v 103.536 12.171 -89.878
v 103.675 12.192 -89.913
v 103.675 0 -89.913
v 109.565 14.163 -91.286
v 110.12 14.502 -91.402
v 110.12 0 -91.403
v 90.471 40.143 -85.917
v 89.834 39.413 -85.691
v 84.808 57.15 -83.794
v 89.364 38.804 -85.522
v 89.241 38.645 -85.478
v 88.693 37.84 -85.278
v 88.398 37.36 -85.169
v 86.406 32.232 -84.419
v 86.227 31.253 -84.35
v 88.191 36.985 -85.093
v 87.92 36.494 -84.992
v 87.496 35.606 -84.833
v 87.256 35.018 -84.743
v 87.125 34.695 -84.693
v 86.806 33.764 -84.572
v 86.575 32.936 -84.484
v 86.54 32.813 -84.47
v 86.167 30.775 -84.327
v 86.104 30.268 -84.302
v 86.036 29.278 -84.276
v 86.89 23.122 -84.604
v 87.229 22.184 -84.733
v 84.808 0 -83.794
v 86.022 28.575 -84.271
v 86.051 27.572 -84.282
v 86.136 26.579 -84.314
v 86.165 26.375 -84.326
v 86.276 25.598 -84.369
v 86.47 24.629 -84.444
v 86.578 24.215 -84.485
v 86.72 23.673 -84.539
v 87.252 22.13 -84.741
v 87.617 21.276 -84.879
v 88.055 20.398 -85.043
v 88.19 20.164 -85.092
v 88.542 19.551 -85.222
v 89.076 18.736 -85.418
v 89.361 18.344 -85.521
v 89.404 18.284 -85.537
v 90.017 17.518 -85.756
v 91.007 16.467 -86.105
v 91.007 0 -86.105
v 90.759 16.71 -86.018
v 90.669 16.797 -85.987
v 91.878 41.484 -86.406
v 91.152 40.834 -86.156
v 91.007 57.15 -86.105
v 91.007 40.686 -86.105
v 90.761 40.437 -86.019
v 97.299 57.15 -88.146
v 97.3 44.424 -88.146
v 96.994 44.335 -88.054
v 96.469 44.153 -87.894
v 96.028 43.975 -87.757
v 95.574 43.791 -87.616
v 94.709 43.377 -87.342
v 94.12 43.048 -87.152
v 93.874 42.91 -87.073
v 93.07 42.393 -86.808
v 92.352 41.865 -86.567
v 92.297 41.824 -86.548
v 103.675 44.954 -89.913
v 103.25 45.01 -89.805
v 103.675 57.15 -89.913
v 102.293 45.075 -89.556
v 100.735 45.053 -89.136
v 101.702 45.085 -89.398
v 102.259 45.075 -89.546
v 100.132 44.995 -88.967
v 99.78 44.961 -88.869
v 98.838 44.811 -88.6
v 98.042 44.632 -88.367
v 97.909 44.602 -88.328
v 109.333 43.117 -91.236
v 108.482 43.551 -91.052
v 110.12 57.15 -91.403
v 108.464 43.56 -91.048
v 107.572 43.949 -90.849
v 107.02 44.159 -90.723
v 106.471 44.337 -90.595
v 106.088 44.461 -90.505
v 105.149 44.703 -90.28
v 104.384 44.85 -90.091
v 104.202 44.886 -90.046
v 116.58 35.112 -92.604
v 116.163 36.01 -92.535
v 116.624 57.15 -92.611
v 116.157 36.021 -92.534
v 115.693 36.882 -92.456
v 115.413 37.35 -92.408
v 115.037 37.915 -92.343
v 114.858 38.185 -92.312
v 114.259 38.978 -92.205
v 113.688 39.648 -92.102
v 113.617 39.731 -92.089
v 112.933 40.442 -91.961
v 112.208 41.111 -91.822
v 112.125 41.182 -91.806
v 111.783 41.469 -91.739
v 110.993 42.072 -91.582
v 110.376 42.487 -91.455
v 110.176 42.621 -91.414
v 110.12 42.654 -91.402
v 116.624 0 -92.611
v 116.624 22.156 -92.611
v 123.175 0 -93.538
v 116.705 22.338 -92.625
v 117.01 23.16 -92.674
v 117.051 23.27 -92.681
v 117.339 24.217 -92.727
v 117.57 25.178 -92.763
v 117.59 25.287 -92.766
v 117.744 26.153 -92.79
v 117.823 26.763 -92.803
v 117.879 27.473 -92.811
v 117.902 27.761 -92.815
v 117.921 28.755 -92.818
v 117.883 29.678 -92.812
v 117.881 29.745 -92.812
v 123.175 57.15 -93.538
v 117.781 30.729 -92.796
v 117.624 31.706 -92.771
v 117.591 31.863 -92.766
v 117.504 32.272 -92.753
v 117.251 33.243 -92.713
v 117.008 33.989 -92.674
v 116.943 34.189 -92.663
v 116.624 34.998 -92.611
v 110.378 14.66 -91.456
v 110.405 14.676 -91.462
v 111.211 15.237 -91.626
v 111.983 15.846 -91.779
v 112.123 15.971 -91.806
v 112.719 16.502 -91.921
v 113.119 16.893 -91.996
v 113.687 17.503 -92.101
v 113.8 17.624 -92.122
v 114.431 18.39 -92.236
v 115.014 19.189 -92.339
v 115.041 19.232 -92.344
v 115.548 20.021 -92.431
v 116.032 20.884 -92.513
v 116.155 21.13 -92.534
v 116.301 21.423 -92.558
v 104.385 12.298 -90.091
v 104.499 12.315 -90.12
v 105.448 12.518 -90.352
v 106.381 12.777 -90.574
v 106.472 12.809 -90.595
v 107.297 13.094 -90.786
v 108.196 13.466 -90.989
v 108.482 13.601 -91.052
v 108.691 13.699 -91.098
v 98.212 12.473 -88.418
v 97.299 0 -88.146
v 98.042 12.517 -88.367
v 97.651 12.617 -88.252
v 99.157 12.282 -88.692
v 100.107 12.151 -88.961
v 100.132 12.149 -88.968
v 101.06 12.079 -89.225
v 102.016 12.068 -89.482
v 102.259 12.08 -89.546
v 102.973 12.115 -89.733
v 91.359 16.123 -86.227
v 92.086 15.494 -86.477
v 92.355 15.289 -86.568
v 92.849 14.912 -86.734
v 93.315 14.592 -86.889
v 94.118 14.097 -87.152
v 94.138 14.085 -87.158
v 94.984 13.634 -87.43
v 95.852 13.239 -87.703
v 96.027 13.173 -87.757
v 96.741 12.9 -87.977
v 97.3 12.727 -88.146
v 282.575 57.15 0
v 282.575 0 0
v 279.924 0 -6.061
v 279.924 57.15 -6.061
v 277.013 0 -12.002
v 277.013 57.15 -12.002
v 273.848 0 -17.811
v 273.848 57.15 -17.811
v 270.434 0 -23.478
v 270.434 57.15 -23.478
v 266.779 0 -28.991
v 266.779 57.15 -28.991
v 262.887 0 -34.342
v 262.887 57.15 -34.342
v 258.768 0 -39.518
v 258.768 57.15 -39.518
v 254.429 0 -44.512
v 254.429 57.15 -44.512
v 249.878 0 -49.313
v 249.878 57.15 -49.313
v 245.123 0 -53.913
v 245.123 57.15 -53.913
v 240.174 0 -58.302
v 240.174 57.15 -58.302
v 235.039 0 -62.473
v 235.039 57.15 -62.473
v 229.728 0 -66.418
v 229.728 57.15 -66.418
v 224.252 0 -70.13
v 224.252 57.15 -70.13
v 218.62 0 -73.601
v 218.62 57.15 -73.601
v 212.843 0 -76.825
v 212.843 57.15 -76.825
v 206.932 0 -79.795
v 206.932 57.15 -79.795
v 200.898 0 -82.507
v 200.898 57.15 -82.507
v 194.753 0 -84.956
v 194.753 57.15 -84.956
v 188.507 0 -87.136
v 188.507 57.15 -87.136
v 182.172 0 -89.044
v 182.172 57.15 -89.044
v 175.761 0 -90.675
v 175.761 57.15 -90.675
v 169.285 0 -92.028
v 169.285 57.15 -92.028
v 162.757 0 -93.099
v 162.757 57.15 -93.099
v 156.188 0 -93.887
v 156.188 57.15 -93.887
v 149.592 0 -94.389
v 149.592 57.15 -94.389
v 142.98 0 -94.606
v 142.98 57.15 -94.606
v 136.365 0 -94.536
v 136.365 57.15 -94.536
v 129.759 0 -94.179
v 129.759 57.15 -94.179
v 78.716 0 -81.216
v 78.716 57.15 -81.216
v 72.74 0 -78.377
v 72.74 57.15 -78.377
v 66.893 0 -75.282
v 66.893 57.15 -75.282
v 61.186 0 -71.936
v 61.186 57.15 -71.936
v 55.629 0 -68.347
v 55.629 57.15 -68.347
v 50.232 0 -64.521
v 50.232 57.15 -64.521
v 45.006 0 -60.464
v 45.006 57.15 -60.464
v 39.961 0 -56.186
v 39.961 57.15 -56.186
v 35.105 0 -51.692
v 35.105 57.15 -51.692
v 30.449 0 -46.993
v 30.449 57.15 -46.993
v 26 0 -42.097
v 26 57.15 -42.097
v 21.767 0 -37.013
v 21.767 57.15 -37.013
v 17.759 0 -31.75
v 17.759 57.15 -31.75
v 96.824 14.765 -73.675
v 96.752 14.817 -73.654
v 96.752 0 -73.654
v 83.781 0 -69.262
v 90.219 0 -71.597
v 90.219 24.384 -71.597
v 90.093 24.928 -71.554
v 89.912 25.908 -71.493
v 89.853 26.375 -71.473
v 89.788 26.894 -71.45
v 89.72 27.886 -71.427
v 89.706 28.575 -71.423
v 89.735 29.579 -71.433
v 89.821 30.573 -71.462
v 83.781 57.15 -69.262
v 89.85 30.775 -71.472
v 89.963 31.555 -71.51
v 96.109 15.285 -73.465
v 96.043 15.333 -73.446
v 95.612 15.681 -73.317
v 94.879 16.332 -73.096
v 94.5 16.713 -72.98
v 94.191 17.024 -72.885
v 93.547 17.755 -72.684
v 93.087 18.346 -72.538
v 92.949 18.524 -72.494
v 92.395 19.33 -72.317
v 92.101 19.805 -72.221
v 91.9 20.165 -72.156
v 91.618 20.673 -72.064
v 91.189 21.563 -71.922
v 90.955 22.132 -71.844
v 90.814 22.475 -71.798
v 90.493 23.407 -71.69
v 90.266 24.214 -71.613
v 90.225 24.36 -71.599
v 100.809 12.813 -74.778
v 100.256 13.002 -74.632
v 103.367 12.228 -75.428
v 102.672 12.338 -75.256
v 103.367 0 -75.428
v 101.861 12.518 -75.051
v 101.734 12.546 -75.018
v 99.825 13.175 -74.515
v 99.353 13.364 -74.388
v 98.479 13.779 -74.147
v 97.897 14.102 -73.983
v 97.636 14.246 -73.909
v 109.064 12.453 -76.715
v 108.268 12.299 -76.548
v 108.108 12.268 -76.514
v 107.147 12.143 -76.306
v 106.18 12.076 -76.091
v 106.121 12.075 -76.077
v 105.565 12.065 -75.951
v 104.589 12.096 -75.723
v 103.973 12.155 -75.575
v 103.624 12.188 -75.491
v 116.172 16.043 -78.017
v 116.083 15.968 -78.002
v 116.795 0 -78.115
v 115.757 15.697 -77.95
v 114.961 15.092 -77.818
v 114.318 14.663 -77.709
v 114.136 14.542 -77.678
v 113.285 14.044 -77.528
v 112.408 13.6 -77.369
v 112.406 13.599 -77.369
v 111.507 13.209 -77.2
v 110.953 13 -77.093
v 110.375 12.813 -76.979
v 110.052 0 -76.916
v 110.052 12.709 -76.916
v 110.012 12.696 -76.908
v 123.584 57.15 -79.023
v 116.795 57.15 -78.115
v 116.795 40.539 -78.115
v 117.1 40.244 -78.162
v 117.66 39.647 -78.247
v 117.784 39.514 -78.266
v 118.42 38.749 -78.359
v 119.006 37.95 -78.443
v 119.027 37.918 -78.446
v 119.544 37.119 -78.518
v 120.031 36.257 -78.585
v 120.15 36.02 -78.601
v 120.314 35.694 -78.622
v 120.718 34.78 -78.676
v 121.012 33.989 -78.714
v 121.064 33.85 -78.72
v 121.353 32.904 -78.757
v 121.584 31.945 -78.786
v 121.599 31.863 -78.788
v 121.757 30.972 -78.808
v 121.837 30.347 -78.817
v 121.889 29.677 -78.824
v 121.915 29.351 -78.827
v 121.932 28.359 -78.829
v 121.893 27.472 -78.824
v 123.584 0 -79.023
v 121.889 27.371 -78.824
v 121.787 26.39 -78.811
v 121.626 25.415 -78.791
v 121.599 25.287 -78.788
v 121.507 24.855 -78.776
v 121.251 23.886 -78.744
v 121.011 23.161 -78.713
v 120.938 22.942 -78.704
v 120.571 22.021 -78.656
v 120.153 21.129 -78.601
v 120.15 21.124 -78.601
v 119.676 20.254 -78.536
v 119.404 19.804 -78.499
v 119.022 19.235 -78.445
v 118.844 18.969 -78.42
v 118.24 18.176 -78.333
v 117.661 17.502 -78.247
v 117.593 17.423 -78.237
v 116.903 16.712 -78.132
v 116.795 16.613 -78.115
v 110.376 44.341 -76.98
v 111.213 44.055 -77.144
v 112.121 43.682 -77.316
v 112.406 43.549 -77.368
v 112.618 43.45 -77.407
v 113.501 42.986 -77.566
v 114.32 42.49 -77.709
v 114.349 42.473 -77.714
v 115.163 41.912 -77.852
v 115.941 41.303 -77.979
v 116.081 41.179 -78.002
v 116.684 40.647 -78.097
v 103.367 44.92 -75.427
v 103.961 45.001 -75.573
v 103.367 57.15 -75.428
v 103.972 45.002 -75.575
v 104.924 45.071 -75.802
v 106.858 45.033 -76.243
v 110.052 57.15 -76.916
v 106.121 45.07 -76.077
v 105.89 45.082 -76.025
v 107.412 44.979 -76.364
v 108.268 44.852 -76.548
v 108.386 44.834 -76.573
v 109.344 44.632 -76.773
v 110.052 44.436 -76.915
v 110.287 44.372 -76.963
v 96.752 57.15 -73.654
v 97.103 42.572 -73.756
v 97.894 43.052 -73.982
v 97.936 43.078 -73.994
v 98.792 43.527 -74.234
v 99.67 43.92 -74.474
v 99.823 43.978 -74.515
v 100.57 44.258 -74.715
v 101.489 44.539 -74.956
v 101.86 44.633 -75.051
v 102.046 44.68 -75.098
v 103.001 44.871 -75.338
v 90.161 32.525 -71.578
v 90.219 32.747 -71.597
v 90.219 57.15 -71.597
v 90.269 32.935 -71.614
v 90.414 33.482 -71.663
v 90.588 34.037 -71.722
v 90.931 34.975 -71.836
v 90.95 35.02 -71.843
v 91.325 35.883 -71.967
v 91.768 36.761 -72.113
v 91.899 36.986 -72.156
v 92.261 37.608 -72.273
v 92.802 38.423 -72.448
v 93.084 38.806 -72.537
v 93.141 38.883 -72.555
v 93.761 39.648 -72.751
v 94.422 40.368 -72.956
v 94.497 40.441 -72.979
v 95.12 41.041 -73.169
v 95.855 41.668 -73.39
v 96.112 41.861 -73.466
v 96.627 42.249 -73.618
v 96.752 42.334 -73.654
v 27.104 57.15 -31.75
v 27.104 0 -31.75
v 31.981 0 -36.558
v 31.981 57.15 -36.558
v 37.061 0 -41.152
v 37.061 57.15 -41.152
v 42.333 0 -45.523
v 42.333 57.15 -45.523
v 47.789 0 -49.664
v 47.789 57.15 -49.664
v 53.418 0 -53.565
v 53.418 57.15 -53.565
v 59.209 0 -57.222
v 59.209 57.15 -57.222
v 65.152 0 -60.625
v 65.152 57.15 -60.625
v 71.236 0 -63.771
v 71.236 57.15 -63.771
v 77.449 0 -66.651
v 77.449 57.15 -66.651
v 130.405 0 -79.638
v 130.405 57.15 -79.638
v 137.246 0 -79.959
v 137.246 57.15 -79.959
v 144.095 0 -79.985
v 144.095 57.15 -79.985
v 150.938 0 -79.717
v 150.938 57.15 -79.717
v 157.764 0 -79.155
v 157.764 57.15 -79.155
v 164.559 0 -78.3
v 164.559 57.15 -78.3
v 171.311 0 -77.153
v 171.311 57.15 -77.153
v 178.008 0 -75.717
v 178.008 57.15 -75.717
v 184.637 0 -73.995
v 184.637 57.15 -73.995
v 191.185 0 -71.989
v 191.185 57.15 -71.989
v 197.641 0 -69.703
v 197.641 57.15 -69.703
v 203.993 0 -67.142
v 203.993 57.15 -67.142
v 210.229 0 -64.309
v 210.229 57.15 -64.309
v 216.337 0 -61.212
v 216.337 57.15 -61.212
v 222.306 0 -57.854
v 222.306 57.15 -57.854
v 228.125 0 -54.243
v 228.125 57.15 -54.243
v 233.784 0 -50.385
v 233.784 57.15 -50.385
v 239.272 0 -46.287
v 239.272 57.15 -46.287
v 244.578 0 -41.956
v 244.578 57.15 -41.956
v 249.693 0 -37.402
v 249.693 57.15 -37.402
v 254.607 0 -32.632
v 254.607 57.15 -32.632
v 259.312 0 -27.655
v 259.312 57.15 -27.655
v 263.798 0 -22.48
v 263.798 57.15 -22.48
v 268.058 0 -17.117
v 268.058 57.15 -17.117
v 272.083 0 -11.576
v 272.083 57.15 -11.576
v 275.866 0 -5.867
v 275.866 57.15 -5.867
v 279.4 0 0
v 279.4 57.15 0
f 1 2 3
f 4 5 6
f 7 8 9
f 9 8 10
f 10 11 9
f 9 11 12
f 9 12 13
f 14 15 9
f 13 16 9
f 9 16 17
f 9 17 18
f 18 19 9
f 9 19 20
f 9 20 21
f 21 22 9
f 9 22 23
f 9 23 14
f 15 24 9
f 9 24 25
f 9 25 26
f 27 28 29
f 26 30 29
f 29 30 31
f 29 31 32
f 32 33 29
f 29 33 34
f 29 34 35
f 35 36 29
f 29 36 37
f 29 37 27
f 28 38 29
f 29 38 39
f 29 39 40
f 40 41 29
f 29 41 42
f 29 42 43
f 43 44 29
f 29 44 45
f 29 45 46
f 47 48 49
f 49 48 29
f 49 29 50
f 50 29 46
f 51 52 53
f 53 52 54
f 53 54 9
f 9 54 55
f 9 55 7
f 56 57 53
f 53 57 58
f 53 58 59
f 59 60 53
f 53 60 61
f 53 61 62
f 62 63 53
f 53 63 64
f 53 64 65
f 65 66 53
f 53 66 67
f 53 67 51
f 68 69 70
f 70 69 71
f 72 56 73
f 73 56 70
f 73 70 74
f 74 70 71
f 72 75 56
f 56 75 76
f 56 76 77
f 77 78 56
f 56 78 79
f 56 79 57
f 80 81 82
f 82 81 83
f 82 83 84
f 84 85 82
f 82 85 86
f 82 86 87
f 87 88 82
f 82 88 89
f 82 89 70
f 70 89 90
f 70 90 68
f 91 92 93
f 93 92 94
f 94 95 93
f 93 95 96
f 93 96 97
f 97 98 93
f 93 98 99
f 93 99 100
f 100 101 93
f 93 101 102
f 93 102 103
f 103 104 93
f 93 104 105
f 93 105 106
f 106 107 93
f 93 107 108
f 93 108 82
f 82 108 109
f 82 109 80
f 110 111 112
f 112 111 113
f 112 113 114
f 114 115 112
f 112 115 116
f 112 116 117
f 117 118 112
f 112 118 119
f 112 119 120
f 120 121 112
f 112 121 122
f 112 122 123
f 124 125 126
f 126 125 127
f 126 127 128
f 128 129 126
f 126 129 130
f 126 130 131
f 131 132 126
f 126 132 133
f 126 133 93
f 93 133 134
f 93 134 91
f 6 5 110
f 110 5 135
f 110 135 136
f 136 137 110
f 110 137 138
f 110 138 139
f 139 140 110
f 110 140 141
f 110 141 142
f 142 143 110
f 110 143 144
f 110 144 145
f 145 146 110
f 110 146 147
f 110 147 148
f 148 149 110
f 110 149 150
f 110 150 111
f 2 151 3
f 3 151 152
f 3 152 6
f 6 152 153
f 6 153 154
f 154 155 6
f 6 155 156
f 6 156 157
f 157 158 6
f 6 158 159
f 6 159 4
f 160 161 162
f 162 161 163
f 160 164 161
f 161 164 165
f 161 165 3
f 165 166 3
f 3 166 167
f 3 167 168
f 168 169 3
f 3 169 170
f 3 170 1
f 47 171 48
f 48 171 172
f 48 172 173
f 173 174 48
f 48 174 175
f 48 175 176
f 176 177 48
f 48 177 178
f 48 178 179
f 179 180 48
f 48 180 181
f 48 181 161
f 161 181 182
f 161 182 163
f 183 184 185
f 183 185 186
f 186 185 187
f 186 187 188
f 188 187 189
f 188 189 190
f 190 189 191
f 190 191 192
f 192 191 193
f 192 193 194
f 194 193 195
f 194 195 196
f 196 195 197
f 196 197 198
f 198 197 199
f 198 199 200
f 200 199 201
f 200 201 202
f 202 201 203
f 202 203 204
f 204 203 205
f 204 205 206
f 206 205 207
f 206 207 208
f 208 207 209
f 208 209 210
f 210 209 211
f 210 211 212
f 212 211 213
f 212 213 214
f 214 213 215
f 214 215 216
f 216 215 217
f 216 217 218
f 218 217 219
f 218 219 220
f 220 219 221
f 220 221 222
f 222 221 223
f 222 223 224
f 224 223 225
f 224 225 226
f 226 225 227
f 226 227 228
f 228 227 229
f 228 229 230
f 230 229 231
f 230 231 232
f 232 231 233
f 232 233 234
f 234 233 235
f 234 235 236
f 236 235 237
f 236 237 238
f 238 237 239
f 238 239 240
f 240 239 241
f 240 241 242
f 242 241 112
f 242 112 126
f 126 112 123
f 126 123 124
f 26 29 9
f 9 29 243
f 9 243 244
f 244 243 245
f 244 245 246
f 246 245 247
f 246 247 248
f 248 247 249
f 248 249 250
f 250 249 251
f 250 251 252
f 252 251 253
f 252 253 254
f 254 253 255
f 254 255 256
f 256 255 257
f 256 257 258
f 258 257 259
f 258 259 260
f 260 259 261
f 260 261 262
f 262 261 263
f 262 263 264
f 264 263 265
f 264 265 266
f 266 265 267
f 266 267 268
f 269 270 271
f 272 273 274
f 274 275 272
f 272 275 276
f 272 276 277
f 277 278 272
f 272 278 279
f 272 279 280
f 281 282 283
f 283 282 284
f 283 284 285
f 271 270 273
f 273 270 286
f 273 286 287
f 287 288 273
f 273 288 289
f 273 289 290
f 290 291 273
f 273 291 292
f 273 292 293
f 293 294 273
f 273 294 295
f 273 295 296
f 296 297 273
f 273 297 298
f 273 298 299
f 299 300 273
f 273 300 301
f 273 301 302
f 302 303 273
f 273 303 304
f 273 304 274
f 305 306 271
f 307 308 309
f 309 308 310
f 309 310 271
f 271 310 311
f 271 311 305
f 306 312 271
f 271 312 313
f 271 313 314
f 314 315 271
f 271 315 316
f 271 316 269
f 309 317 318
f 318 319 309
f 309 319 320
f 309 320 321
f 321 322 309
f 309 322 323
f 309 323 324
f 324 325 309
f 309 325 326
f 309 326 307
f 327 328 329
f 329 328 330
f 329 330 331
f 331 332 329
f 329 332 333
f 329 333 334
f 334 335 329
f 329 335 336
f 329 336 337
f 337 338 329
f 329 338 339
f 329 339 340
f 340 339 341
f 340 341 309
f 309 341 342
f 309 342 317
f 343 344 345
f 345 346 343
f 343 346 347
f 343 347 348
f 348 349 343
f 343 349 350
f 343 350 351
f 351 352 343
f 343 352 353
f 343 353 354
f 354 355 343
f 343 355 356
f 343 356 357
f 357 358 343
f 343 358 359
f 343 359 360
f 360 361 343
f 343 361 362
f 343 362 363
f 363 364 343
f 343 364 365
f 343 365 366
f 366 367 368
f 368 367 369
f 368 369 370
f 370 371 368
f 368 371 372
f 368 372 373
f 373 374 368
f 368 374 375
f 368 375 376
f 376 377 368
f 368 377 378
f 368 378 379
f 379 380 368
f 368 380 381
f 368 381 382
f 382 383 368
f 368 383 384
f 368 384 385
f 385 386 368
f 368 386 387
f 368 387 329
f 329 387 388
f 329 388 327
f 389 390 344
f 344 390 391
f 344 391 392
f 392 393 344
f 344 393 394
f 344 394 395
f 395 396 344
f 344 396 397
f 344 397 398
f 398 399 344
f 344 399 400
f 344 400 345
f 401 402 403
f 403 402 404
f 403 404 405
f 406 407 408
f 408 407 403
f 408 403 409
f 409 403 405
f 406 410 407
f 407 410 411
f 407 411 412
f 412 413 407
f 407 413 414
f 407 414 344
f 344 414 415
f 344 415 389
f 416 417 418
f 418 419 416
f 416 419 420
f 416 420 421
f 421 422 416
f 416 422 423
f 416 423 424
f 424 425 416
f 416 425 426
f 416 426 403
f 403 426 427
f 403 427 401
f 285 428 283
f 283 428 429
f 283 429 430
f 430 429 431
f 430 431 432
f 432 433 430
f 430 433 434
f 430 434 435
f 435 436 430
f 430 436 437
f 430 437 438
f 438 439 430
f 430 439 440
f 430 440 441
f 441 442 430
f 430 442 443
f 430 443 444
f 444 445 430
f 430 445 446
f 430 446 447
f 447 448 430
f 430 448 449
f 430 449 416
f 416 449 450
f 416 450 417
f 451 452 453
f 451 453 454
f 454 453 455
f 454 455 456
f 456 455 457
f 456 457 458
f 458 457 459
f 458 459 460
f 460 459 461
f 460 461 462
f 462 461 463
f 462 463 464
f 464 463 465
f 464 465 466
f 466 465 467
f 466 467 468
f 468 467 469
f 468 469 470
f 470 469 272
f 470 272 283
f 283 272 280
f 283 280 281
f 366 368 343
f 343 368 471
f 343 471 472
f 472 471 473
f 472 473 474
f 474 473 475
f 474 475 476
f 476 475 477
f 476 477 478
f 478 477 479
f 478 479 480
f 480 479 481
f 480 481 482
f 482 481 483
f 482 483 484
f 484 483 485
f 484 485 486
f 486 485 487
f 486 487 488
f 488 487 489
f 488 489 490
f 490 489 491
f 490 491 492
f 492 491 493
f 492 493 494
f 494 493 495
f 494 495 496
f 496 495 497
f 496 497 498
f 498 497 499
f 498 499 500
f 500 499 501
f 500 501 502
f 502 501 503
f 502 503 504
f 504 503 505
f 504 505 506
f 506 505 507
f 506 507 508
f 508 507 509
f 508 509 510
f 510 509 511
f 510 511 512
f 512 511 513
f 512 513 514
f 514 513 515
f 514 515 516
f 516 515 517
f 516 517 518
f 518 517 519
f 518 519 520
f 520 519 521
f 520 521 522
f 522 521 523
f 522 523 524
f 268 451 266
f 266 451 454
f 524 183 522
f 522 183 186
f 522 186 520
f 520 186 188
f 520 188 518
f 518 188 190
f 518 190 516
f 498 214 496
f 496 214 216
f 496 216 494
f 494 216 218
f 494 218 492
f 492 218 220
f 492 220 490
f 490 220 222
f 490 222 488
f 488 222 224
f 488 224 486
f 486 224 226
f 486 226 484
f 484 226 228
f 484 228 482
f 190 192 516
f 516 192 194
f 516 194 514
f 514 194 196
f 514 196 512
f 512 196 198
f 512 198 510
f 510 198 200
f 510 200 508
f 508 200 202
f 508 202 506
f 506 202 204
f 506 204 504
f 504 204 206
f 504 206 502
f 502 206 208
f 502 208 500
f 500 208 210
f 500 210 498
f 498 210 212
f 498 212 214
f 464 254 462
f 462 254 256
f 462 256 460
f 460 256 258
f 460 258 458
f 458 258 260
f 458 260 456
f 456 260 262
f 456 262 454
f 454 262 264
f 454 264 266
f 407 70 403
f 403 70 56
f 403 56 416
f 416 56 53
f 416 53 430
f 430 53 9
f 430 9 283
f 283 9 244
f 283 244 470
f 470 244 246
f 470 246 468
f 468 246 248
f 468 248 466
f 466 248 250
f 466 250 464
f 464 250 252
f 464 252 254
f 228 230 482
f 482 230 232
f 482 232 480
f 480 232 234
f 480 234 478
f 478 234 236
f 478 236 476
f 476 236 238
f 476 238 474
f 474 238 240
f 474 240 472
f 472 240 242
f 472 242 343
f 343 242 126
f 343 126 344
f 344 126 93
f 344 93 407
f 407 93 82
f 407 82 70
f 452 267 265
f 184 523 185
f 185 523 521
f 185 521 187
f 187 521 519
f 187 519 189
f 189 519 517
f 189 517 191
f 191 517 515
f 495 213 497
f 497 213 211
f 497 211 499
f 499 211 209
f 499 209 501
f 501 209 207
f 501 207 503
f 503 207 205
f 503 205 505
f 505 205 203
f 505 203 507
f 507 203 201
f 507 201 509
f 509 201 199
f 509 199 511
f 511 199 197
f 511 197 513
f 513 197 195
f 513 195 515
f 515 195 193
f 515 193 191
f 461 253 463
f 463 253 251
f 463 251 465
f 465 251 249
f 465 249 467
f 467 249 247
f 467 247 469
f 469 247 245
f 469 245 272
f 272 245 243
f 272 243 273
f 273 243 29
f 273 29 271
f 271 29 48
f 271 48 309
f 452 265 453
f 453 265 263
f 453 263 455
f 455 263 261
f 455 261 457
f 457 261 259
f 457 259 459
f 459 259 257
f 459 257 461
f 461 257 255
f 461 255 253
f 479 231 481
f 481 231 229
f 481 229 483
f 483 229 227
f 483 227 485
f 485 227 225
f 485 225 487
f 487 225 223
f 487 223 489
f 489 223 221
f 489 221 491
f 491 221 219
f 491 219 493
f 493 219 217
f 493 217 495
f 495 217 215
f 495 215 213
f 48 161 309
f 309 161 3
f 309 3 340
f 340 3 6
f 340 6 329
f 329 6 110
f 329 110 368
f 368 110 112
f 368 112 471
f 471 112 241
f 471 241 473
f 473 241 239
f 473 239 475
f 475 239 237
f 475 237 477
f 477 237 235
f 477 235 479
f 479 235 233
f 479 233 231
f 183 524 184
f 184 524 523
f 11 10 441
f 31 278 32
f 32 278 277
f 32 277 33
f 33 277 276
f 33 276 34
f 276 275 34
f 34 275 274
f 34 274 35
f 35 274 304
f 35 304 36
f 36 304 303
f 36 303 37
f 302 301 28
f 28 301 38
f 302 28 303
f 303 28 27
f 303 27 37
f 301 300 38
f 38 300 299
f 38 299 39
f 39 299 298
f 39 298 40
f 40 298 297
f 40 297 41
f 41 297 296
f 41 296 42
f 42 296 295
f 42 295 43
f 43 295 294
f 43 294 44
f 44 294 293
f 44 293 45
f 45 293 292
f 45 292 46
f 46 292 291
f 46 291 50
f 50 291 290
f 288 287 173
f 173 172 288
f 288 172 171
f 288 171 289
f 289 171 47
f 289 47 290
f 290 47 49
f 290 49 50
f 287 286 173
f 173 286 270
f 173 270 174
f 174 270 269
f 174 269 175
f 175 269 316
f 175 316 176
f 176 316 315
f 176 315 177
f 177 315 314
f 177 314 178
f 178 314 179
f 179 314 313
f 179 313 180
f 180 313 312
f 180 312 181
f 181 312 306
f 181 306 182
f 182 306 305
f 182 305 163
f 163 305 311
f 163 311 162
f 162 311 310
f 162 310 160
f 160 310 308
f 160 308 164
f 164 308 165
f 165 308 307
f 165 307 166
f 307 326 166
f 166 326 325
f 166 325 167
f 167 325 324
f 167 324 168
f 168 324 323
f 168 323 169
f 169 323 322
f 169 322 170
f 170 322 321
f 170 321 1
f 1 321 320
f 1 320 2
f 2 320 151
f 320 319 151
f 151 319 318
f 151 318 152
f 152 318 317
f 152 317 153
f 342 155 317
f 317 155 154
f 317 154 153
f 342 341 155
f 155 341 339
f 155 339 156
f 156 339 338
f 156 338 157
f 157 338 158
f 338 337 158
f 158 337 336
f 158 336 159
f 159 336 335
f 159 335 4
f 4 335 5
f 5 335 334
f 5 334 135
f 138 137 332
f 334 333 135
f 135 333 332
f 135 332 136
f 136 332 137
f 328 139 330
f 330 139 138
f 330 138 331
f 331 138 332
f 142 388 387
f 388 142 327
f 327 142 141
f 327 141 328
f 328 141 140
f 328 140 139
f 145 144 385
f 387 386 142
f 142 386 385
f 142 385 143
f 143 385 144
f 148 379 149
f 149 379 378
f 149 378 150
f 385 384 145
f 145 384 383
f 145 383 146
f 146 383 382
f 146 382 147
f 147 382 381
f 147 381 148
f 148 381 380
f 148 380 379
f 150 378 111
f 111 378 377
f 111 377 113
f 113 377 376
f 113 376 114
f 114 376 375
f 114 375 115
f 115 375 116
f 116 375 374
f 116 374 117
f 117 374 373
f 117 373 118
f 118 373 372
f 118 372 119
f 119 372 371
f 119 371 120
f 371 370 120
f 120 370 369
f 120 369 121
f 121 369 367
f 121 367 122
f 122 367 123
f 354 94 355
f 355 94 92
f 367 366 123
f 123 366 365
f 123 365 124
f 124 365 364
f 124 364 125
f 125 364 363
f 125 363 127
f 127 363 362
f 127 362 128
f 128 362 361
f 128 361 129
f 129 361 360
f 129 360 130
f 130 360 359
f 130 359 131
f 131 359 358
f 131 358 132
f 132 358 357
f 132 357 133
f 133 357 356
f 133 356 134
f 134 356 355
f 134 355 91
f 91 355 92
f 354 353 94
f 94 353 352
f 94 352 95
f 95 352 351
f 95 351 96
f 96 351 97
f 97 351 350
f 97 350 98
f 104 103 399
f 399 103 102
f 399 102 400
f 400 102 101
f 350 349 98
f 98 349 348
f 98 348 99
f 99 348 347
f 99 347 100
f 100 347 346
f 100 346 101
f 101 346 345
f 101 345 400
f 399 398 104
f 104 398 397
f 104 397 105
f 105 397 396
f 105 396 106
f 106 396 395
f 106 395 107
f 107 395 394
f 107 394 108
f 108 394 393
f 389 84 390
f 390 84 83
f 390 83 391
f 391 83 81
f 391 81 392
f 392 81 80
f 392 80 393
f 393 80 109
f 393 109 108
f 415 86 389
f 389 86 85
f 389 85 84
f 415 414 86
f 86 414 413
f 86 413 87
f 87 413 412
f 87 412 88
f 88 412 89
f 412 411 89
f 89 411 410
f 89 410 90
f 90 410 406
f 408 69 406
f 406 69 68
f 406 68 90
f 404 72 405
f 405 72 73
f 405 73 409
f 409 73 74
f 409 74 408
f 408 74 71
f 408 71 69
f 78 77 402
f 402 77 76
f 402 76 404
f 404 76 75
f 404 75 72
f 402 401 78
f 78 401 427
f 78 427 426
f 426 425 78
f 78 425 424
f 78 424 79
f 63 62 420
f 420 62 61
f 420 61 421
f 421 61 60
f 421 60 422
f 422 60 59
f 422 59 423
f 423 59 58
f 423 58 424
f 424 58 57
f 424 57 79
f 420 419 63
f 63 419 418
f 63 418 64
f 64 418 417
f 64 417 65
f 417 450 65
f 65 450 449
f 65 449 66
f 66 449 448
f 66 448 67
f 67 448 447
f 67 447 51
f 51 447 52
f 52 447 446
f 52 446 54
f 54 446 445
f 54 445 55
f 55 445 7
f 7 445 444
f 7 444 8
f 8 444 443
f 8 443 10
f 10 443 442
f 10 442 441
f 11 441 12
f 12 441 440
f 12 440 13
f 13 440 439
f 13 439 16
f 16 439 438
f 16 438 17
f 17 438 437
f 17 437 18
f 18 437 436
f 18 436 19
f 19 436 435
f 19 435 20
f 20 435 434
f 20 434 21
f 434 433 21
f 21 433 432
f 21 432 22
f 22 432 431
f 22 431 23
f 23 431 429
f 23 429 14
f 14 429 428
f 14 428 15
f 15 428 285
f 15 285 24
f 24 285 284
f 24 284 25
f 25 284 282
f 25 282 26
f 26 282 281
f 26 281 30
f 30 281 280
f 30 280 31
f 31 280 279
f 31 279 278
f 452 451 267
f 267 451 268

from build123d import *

# Parameters (mm, degrees)
BOSS_EXTRUDE1_DEPTH = 57.15
SKETCH4_R           = 16.51
CUT_EXTRUDE1_DEPTH  = 310.020008061
SKETCH5_W           = 49.699696275
SKETCH5_H           = 31.75
CUT_EXTRUDE2_DEPTH  = 304.425034295


with BuildPart() as part:
    # Sketch1 → Boss-Extrude1 (new body)
    with BuildSketch(Plane(origin=(0, 0, 0), x_dir=(1, 0, 0), z_dir=(0, 1, 0))):
        with BuildLine():
            Line((0, 0), (3.175, 0))
            ThreePointArc((3.175, 0), (141.2875, 80.01), (279.4, 0))
            Line((279.4, 0), (282.575, 0))
            ThreePointArc((282.575, 0), (141.2875, 94.615), (0, 0))
        make_face()
    extrude(amount=BOSS_EXTRUDE1_DEPTH)

    # Sketch4 → Cut-Extrude1 (cut, through all)
    with BuildSketch(Plane(origin=(-15.966248852, 0, -55.68092686), x_dir=(-0.9612616959383227, 0, 0.275637355816986), z_dir=(-0.275637355816986, 0, -0.9612616959383227))):
        with Locations((-122.428, 28.575)):
            Circle(SKETCH4_R)
    extrude(amount=-CUT_EXTRUDE1_DEPTH, mode=Mode.SUBTRACT)

    # Sketch5 → Cut-Extrude2 (cut, through all)
    with BuildSketch(Plane(origin=(0, 0, 0), x_dir=(1, 0, 0), z_dir=(0, 1, 0))):
        with Locations((24.849848138, 15.875)):
            Rectangle(SKETCH5_W, SKETCH5_H)
    extrude(amount=CUT_EXTRUDE2_DEPTH, mode=Mode.SUBTRACT)


solid = part.part
